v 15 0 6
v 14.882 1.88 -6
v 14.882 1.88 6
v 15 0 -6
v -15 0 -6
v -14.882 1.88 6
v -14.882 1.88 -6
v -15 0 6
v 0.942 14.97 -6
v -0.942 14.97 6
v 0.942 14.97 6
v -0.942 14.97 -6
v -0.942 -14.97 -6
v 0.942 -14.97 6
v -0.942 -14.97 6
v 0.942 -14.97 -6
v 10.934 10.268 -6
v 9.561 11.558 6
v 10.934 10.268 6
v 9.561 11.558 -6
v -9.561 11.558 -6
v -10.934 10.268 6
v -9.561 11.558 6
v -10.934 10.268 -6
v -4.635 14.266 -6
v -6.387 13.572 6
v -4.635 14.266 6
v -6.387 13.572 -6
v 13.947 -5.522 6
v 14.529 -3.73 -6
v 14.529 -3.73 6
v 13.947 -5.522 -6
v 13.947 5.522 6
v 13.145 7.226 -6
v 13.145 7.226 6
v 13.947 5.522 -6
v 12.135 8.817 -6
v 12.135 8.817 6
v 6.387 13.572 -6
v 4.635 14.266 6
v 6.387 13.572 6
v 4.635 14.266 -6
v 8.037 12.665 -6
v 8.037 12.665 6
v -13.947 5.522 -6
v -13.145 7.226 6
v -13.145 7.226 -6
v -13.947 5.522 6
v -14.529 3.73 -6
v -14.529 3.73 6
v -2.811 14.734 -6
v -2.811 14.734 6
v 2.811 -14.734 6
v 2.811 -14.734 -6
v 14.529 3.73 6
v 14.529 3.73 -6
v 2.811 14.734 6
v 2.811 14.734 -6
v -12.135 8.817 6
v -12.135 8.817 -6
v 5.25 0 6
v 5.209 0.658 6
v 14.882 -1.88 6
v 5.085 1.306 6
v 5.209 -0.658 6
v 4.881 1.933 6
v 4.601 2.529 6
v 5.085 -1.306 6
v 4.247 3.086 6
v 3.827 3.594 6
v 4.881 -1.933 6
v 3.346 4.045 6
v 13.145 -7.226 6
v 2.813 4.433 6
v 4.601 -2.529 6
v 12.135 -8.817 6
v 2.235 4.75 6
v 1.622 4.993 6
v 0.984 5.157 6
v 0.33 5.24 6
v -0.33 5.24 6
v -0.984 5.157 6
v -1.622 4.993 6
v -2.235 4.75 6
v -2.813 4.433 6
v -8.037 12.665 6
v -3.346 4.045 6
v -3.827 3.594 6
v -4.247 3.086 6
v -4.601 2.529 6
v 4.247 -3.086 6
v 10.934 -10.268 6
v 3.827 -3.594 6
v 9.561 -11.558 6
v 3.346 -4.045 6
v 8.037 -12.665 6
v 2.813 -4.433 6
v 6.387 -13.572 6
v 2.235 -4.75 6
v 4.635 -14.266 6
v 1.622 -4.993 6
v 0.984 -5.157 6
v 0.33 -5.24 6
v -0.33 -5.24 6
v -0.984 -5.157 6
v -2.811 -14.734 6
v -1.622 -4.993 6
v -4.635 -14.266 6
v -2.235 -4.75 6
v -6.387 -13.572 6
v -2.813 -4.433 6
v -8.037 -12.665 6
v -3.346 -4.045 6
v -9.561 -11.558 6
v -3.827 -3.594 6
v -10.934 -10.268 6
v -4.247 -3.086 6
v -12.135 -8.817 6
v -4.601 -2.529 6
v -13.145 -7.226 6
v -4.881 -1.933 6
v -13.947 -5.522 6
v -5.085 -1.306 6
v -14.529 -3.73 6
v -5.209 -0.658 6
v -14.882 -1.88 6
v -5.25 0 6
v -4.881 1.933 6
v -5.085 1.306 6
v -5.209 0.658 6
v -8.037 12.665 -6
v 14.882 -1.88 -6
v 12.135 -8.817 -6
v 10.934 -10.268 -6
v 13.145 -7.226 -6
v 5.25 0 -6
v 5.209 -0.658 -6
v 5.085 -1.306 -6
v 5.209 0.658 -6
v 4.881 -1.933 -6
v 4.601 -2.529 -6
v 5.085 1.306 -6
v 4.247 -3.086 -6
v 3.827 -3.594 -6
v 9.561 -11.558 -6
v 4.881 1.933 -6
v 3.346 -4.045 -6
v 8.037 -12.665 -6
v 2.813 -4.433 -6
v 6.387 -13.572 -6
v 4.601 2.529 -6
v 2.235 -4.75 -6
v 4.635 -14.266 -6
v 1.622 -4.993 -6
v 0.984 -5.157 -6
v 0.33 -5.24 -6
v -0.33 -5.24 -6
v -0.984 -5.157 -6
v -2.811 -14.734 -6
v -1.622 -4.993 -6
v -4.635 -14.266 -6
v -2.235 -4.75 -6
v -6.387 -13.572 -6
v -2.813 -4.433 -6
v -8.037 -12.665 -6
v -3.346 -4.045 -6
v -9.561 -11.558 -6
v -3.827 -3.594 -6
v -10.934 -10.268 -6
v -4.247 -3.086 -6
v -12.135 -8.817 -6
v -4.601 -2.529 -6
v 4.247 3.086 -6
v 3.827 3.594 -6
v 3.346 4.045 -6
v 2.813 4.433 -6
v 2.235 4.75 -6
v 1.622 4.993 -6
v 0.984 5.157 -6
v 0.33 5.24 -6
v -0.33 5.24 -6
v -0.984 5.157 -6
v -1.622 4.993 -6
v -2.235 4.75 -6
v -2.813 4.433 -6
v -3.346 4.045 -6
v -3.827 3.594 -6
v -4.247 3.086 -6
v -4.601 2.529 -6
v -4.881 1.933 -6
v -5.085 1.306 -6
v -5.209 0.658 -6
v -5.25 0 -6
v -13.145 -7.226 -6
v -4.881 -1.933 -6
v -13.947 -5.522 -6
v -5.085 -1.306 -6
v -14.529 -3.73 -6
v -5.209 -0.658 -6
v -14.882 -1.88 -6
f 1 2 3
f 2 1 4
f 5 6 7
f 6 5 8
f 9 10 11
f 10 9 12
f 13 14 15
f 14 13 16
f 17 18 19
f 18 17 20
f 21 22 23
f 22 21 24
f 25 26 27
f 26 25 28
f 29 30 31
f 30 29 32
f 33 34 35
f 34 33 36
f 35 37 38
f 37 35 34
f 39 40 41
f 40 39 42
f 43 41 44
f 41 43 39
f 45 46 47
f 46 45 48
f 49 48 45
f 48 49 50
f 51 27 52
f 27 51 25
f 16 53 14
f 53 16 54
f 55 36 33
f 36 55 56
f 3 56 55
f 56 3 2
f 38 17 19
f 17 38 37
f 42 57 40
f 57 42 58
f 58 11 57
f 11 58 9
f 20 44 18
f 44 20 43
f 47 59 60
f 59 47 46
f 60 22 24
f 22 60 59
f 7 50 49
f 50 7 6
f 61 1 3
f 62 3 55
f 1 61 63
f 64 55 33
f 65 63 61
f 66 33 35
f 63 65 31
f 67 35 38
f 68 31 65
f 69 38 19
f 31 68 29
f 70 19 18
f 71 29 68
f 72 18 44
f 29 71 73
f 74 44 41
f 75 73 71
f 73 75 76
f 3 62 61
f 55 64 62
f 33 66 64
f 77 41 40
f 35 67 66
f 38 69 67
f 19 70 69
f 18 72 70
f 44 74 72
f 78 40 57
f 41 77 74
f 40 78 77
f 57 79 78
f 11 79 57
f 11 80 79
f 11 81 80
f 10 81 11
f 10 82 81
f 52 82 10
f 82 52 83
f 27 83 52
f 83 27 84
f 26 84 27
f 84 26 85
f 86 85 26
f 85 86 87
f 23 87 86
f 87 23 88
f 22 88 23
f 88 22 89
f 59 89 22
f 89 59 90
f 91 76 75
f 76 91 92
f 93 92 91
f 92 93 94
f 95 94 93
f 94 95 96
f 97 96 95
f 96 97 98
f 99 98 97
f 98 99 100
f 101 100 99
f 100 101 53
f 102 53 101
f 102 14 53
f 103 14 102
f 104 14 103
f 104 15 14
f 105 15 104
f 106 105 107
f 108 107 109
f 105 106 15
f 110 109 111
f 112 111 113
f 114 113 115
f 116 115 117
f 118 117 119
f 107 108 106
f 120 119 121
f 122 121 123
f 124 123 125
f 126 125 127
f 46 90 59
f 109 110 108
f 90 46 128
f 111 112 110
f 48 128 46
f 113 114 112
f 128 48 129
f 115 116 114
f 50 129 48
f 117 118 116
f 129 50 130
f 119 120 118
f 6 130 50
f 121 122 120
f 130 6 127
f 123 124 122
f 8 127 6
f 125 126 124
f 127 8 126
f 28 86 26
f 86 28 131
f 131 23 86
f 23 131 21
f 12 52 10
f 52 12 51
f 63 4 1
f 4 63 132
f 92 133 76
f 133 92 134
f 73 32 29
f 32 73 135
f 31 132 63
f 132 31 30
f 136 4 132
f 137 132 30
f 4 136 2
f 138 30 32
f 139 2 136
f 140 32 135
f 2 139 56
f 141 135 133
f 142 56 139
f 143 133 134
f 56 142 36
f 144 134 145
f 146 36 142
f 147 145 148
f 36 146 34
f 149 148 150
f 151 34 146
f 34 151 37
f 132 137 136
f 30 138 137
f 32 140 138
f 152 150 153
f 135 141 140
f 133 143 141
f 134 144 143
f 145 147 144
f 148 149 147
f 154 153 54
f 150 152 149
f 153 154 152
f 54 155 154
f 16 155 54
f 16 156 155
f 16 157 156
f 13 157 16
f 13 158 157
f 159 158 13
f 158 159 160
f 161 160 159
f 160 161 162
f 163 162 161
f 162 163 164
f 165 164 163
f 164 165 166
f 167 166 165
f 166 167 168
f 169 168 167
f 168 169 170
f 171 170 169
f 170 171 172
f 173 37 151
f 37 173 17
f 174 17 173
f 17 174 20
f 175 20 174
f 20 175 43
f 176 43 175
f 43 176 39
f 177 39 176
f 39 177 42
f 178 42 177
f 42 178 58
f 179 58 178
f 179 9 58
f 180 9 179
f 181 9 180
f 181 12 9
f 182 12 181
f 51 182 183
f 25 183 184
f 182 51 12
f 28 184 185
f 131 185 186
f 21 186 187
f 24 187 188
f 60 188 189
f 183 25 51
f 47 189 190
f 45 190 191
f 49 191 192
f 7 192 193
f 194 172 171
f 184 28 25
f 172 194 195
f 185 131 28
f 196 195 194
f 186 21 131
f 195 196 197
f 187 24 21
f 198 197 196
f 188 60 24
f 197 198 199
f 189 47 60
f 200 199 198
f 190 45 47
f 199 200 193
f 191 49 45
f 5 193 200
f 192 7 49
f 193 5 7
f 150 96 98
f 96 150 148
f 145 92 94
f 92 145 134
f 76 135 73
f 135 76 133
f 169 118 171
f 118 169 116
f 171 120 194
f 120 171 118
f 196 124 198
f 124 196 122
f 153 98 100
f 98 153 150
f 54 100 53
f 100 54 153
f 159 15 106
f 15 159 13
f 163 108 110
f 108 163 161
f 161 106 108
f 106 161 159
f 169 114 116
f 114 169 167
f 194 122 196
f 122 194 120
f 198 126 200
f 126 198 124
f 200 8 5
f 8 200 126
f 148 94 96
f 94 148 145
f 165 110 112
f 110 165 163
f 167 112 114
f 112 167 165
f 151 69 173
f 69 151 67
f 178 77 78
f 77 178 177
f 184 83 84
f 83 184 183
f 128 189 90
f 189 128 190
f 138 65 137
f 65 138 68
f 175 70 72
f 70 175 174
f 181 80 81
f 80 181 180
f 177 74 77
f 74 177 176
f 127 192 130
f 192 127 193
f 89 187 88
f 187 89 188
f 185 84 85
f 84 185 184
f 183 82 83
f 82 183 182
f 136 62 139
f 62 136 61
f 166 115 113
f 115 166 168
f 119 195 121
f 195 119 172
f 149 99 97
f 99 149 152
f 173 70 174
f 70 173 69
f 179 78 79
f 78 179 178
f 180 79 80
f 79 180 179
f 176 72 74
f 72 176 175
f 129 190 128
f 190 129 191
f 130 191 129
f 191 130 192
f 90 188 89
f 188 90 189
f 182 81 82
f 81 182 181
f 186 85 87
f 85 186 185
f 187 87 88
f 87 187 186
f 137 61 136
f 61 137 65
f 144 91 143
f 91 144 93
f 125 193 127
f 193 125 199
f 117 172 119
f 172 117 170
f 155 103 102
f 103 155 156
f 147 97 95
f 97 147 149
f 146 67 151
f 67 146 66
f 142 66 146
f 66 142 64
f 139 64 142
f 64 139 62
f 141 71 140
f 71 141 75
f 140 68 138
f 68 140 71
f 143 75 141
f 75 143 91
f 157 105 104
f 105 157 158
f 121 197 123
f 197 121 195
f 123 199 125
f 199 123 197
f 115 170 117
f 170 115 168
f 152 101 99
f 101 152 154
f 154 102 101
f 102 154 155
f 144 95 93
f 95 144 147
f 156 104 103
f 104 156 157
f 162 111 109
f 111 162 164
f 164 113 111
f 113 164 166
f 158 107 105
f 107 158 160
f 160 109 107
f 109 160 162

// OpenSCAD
$fn = 50;


difference() {
	union() {
		translate(v = [0, 0, -6.0000000000]) {
			cylinder(h = 12, r = 15.0000000000);
		}
	}
	union() {
		translate(v = [0, 0, -100.0000000000]) {
			cylinder(h = 200, r = 5.2500000000);
		}
	}
}
